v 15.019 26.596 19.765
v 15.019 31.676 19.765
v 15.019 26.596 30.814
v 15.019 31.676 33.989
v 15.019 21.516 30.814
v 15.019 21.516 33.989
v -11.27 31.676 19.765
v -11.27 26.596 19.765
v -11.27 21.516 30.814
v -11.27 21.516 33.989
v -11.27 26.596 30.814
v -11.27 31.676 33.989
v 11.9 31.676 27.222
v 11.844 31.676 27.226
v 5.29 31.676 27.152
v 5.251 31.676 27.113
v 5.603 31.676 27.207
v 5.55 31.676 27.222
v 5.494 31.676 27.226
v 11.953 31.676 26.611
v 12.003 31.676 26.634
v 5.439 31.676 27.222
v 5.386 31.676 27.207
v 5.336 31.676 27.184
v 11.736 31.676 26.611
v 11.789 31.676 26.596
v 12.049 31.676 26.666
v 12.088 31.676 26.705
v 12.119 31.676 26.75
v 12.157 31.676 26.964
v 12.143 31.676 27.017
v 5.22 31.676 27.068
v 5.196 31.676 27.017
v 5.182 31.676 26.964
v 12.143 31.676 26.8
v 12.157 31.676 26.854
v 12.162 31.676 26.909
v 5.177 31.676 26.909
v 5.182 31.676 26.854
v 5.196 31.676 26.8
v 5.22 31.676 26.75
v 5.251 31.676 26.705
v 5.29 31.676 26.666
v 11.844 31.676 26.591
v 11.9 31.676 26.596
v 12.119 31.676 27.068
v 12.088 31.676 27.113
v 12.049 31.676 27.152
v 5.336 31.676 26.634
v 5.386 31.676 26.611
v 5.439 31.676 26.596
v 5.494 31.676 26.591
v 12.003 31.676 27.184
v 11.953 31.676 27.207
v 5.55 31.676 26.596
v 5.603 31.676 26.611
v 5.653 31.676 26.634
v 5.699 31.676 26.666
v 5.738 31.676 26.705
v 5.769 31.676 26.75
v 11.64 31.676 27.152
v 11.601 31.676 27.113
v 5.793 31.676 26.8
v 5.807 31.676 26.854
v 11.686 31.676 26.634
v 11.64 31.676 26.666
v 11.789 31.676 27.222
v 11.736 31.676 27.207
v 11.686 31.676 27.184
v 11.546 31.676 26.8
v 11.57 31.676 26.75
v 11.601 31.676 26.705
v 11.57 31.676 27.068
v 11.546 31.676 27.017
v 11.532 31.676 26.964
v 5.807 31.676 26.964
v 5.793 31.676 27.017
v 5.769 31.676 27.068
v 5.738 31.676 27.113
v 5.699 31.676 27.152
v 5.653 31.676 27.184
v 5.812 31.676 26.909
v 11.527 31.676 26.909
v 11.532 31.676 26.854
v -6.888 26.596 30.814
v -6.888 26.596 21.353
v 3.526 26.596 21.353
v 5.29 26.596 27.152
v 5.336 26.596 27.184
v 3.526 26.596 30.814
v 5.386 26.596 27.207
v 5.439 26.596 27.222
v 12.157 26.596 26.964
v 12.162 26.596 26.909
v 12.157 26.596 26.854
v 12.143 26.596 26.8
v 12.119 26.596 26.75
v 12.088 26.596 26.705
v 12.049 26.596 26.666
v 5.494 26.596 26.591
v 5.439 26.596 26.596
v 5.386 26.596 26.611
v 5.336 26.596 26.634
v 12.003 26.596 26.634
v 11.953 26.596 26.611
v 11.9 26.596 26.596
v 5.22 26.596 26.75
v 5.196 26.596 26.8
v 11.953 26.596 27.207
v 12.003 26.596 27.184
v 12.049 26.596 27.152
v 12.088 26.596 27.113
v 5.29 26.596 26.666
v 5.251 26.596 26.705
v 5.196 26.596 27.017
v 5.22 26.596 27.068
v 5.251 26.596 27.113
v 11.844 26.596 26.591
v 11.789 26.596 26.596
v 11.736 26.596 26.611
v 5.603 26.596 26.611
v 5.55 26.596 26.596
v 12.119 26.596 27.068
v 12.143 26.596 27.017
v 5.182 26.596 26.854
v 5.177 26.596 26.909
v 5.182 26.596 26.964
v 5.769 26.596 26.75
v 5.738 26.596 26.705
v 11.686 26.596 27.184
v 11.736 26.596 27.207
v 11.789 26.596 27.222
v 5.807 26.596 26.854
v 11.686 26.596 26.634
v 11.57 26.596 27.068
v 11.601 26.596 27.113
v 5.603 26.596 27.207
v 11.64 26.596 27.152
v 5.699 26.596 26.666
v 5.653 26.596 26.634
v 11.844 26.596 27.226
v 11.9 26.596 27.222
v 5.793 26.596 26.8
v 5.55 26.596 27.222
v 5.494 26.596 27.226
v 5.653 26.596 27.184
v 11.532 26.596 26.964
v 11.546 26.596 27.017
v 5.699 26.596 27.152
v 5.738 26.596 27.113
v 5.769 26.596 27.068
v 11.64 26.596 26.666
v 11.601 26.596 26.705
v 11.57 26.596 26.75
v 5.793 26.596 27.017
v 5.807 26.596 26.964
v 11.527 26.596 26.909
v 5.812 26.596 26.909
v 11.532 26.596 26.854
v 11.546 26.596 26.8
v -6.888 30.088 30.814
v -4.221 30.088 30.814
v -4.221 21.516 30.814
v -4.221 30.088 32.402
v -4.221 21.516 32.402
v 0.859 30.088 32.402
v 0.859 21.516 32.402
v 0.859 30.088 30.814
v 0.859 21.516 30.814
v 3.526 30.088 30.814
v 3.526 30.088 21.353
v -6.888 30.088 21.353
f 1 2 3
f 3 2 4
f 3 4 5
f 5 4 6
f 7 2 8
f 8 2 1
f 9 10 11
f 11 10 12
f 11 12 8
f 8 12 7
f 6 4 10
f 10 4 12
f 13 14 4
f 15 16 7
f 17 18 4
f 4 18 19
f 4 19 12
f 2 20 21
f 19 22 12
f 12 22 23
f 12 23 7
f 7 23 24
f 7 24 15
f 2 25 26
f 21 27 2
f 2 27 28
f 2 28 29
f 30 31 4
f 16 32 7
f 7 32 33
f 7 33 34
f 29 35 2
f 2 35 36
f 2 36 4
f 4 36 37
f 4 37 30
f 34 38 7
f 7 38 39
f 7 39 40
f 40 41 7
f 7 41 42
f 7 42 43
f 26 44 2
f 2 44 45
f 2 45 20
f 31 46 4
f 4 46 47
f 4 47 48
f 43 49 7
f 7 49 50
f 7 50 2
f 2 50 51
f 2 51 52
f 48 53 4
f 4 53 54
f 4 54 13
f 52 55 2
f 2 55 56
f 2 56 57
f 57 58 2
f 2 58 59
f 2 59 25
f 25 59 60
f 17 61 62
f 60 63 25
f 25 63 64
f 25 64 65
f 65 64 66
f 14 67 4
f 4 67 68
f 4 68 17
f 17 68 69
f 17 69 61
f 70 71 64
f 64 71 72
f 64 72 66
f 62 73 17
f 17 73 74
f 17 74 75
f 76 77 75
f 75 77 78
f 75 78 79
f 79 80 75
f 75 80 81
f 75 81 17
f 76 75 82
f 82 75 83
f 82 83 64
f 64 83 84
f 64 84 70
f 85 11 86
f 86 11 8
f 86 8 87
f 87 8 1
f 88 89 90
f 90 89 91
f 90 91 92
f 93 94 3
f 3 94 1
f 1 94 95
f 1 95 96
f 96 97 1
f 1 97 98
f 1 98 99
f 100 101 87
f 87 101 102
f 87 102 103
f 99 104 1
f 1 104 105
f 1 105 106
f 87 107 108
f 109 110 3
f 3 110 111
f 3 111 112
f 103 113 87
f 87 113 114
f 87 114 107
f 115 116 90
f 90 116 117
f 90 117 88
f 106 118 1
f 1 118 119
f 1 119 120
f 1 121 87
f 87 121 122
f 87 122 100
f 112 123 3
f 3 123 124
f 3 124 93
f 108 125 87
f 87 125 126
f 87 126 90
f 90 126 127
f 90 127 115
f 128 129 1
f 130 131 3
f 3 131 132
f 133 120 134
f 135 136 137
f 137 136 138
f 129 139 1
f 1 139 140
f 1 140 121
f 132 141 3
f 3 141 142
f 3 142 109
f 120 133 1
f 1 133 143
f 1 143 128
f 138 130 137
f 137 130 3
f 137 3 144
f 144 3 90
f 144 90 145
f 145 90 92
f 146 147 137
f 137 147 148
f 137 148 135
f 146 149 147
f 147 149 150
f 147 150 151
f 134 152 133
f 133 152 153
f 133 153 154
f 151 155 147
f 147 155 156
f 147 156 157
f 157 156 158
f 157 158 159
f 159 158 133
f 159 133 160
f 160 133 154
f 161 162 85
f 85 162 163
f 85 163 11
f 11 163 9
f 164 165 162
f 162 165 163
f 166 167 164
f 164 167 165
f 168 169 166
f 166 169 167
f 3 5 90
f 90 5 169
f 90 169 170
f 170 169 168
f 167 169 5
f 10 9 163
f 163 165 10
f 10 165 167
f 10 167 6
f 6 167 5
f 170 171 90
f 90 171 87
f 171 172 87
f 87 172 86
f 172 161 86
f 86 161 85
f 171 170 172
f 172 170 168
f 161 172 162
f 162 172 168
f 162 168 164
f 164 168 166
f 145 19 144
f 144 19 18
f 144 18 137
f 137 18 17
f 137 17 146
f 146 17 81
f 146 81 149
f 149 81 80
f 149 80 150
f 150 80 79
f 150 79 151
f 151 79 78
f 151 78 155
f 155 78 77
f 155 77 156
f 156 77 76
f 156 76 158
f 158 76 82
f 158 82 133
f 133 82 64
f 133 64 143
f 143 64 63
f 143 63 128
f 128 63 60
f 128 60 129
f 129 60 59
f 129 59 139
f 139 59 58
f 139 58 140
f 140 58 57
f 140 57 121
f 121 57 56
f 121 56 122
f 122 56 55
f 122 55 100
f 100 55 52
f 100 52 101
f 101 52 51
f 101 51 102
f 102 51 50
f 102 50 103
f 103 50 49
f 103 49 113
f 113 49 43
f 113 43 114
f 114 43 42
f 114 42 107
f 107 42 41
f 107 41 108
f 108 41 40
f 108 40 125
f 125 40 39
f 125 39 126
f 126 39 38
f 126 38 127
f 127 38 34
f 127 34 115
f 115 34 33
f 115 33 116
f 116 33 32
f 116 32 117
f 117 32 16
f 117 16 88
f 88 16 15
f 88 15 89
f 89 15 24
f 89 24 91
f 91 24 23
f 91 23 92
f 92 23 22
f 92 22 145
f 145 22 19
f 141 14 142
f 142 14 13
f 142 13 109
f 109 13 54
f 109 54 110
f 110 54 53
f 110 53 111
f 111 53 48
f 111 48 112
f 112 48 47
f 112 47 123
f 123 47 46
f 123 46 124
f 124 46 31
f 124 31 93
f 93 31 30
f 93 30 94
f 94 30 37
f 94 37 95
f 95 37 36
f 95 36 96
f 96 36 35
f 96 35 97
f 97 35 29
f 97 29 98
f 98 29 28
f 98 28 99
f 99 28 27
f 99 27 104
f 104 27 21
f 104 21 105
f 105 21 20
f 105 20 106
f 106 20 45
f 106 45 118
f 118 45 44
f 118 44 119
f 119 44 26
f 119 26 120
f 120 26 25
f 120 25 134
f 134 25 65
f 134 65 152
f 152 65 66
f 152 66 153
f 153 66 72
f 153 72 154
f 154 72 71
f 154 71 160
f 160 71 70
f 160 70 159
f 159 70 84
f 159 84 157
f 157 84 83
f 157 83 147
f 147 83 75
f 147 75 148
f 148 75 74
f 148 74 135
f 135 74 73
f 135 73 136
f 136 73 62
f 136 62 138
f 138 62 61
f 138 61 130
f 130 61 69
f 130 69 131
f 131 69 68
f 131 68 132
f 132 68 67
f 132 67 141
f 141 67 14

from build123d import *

# Parameters (mm, degrees)
SKETCH1_W           = 26.289
SKETCH1_H           = 14.224
BOSS_EXTRUDE2_DEPTH = 5.08
BOSS_EXTRUDE3_DEPTH = 5.08
CUT_EXTRUDE1_DEPTH  = 3.4925
CUT_EXTRUDE2_REACH  = 12.16
SKETCH4_R           = 0.3175


with BuildPart() as part:
    # Sketch1 → Boss-Extrude2 (new body)
    with BuildSketch(Plane(origin=(0, 26.595650985, 0), x_dir=(1, 0, 0), z_dir=(0, 1, 0))):
        with Locations((1.874973489, -26.877146351)):
            Rectangle(SKETCH1_W, SKETCH1_H)
    extrude(amount=BOSS_EXTRUDE2_DEPTH)

    # Sketch2 → Boss-Extrude3 (add)
    with BuildSketch(Plane.XZ.offset(-26.595650985)):
        Polygon((-11.269526511, 30.814146351), (-11.269526511, 33.989146351), (15.019473489, 33.989146351), (15.019473489, 30.814146351), (0.858973489, 30.814146351), (0.858973489, 32.401646351), (-4.221026511, 32.401646351), (-4.221026511, 30.814146351), align=None)
    extrude(amount=BOSS_EXTRUDE3_DEPTH)

    # Sketch3 → Cut-Extrude1 (cut)
    with BuildSketch(Plane.XZ.offset(-26.595650985)):
        Polygon((-4.221026511, 30.814146351), (-4.221026511, 32.401646351), (0.858973489, 32.401646351), (0.858973489, 30.814146351), (3.525973489, 30.814146351), (3.525973489, 21.352646351), (-6.888026511, 21.352646351), (-6.888026511, 30.814146351), align=None)
    extrude(amount=-CUT_EXTRUDE1_DEPTH, mode=Mode.SUBTRACT)

    # Sketch4 → Cut-Extrude2 (cut, up to next)
    with BuildSketch(Plane(origin=(0, 31.675650985, 0), x_dir=(1, 0, 0), z_dir=(0, 1, 0)), mode=Mode.PRIVATE) as cut_extrude2_sk1:
        with Locations((5.494473489, -26.908896351)):
            Circle(SKETCH4_R)
    cut_extrude2_tool1 = extrude(cut_extrude2_sk1.sketch, amount=-CUT_EXTRUDE2_REACH, mode=Mode.PRIVATE) & part.part
    add(cut_extrude2_tool1.solids().sort_by_distance((5.494473, 31.675651, 26.908896))[0], mode=Mode.SUBTRACT)
    # Sketch4 → Cut-Extrude2 (cut, up to next)
    with BuildSketch(Plane(origin=(0, 31.675650985, 0), x_dir=(1, 0, 0), z_dir=(0, 1, 0)), mode=Mode.PRIVATE) as cut_extrude2_sk2:
        with Locations((11.844473489, -26.908896351)):
            Circle(SKETCH4_R)
    cut_extrude2_tool2 = extrude(cut_extrude2_sk2.sketch, amount=-CUT_EXTRUDE2_REACH, mode=Mode.PRIVATE) & part.part
    add(cut_extrude2_tool2.solids().sort_by_distance((11.844473, 31.675651, 26.908896))[0], mode=Mode.SUBTRACT)


solid = part.part
